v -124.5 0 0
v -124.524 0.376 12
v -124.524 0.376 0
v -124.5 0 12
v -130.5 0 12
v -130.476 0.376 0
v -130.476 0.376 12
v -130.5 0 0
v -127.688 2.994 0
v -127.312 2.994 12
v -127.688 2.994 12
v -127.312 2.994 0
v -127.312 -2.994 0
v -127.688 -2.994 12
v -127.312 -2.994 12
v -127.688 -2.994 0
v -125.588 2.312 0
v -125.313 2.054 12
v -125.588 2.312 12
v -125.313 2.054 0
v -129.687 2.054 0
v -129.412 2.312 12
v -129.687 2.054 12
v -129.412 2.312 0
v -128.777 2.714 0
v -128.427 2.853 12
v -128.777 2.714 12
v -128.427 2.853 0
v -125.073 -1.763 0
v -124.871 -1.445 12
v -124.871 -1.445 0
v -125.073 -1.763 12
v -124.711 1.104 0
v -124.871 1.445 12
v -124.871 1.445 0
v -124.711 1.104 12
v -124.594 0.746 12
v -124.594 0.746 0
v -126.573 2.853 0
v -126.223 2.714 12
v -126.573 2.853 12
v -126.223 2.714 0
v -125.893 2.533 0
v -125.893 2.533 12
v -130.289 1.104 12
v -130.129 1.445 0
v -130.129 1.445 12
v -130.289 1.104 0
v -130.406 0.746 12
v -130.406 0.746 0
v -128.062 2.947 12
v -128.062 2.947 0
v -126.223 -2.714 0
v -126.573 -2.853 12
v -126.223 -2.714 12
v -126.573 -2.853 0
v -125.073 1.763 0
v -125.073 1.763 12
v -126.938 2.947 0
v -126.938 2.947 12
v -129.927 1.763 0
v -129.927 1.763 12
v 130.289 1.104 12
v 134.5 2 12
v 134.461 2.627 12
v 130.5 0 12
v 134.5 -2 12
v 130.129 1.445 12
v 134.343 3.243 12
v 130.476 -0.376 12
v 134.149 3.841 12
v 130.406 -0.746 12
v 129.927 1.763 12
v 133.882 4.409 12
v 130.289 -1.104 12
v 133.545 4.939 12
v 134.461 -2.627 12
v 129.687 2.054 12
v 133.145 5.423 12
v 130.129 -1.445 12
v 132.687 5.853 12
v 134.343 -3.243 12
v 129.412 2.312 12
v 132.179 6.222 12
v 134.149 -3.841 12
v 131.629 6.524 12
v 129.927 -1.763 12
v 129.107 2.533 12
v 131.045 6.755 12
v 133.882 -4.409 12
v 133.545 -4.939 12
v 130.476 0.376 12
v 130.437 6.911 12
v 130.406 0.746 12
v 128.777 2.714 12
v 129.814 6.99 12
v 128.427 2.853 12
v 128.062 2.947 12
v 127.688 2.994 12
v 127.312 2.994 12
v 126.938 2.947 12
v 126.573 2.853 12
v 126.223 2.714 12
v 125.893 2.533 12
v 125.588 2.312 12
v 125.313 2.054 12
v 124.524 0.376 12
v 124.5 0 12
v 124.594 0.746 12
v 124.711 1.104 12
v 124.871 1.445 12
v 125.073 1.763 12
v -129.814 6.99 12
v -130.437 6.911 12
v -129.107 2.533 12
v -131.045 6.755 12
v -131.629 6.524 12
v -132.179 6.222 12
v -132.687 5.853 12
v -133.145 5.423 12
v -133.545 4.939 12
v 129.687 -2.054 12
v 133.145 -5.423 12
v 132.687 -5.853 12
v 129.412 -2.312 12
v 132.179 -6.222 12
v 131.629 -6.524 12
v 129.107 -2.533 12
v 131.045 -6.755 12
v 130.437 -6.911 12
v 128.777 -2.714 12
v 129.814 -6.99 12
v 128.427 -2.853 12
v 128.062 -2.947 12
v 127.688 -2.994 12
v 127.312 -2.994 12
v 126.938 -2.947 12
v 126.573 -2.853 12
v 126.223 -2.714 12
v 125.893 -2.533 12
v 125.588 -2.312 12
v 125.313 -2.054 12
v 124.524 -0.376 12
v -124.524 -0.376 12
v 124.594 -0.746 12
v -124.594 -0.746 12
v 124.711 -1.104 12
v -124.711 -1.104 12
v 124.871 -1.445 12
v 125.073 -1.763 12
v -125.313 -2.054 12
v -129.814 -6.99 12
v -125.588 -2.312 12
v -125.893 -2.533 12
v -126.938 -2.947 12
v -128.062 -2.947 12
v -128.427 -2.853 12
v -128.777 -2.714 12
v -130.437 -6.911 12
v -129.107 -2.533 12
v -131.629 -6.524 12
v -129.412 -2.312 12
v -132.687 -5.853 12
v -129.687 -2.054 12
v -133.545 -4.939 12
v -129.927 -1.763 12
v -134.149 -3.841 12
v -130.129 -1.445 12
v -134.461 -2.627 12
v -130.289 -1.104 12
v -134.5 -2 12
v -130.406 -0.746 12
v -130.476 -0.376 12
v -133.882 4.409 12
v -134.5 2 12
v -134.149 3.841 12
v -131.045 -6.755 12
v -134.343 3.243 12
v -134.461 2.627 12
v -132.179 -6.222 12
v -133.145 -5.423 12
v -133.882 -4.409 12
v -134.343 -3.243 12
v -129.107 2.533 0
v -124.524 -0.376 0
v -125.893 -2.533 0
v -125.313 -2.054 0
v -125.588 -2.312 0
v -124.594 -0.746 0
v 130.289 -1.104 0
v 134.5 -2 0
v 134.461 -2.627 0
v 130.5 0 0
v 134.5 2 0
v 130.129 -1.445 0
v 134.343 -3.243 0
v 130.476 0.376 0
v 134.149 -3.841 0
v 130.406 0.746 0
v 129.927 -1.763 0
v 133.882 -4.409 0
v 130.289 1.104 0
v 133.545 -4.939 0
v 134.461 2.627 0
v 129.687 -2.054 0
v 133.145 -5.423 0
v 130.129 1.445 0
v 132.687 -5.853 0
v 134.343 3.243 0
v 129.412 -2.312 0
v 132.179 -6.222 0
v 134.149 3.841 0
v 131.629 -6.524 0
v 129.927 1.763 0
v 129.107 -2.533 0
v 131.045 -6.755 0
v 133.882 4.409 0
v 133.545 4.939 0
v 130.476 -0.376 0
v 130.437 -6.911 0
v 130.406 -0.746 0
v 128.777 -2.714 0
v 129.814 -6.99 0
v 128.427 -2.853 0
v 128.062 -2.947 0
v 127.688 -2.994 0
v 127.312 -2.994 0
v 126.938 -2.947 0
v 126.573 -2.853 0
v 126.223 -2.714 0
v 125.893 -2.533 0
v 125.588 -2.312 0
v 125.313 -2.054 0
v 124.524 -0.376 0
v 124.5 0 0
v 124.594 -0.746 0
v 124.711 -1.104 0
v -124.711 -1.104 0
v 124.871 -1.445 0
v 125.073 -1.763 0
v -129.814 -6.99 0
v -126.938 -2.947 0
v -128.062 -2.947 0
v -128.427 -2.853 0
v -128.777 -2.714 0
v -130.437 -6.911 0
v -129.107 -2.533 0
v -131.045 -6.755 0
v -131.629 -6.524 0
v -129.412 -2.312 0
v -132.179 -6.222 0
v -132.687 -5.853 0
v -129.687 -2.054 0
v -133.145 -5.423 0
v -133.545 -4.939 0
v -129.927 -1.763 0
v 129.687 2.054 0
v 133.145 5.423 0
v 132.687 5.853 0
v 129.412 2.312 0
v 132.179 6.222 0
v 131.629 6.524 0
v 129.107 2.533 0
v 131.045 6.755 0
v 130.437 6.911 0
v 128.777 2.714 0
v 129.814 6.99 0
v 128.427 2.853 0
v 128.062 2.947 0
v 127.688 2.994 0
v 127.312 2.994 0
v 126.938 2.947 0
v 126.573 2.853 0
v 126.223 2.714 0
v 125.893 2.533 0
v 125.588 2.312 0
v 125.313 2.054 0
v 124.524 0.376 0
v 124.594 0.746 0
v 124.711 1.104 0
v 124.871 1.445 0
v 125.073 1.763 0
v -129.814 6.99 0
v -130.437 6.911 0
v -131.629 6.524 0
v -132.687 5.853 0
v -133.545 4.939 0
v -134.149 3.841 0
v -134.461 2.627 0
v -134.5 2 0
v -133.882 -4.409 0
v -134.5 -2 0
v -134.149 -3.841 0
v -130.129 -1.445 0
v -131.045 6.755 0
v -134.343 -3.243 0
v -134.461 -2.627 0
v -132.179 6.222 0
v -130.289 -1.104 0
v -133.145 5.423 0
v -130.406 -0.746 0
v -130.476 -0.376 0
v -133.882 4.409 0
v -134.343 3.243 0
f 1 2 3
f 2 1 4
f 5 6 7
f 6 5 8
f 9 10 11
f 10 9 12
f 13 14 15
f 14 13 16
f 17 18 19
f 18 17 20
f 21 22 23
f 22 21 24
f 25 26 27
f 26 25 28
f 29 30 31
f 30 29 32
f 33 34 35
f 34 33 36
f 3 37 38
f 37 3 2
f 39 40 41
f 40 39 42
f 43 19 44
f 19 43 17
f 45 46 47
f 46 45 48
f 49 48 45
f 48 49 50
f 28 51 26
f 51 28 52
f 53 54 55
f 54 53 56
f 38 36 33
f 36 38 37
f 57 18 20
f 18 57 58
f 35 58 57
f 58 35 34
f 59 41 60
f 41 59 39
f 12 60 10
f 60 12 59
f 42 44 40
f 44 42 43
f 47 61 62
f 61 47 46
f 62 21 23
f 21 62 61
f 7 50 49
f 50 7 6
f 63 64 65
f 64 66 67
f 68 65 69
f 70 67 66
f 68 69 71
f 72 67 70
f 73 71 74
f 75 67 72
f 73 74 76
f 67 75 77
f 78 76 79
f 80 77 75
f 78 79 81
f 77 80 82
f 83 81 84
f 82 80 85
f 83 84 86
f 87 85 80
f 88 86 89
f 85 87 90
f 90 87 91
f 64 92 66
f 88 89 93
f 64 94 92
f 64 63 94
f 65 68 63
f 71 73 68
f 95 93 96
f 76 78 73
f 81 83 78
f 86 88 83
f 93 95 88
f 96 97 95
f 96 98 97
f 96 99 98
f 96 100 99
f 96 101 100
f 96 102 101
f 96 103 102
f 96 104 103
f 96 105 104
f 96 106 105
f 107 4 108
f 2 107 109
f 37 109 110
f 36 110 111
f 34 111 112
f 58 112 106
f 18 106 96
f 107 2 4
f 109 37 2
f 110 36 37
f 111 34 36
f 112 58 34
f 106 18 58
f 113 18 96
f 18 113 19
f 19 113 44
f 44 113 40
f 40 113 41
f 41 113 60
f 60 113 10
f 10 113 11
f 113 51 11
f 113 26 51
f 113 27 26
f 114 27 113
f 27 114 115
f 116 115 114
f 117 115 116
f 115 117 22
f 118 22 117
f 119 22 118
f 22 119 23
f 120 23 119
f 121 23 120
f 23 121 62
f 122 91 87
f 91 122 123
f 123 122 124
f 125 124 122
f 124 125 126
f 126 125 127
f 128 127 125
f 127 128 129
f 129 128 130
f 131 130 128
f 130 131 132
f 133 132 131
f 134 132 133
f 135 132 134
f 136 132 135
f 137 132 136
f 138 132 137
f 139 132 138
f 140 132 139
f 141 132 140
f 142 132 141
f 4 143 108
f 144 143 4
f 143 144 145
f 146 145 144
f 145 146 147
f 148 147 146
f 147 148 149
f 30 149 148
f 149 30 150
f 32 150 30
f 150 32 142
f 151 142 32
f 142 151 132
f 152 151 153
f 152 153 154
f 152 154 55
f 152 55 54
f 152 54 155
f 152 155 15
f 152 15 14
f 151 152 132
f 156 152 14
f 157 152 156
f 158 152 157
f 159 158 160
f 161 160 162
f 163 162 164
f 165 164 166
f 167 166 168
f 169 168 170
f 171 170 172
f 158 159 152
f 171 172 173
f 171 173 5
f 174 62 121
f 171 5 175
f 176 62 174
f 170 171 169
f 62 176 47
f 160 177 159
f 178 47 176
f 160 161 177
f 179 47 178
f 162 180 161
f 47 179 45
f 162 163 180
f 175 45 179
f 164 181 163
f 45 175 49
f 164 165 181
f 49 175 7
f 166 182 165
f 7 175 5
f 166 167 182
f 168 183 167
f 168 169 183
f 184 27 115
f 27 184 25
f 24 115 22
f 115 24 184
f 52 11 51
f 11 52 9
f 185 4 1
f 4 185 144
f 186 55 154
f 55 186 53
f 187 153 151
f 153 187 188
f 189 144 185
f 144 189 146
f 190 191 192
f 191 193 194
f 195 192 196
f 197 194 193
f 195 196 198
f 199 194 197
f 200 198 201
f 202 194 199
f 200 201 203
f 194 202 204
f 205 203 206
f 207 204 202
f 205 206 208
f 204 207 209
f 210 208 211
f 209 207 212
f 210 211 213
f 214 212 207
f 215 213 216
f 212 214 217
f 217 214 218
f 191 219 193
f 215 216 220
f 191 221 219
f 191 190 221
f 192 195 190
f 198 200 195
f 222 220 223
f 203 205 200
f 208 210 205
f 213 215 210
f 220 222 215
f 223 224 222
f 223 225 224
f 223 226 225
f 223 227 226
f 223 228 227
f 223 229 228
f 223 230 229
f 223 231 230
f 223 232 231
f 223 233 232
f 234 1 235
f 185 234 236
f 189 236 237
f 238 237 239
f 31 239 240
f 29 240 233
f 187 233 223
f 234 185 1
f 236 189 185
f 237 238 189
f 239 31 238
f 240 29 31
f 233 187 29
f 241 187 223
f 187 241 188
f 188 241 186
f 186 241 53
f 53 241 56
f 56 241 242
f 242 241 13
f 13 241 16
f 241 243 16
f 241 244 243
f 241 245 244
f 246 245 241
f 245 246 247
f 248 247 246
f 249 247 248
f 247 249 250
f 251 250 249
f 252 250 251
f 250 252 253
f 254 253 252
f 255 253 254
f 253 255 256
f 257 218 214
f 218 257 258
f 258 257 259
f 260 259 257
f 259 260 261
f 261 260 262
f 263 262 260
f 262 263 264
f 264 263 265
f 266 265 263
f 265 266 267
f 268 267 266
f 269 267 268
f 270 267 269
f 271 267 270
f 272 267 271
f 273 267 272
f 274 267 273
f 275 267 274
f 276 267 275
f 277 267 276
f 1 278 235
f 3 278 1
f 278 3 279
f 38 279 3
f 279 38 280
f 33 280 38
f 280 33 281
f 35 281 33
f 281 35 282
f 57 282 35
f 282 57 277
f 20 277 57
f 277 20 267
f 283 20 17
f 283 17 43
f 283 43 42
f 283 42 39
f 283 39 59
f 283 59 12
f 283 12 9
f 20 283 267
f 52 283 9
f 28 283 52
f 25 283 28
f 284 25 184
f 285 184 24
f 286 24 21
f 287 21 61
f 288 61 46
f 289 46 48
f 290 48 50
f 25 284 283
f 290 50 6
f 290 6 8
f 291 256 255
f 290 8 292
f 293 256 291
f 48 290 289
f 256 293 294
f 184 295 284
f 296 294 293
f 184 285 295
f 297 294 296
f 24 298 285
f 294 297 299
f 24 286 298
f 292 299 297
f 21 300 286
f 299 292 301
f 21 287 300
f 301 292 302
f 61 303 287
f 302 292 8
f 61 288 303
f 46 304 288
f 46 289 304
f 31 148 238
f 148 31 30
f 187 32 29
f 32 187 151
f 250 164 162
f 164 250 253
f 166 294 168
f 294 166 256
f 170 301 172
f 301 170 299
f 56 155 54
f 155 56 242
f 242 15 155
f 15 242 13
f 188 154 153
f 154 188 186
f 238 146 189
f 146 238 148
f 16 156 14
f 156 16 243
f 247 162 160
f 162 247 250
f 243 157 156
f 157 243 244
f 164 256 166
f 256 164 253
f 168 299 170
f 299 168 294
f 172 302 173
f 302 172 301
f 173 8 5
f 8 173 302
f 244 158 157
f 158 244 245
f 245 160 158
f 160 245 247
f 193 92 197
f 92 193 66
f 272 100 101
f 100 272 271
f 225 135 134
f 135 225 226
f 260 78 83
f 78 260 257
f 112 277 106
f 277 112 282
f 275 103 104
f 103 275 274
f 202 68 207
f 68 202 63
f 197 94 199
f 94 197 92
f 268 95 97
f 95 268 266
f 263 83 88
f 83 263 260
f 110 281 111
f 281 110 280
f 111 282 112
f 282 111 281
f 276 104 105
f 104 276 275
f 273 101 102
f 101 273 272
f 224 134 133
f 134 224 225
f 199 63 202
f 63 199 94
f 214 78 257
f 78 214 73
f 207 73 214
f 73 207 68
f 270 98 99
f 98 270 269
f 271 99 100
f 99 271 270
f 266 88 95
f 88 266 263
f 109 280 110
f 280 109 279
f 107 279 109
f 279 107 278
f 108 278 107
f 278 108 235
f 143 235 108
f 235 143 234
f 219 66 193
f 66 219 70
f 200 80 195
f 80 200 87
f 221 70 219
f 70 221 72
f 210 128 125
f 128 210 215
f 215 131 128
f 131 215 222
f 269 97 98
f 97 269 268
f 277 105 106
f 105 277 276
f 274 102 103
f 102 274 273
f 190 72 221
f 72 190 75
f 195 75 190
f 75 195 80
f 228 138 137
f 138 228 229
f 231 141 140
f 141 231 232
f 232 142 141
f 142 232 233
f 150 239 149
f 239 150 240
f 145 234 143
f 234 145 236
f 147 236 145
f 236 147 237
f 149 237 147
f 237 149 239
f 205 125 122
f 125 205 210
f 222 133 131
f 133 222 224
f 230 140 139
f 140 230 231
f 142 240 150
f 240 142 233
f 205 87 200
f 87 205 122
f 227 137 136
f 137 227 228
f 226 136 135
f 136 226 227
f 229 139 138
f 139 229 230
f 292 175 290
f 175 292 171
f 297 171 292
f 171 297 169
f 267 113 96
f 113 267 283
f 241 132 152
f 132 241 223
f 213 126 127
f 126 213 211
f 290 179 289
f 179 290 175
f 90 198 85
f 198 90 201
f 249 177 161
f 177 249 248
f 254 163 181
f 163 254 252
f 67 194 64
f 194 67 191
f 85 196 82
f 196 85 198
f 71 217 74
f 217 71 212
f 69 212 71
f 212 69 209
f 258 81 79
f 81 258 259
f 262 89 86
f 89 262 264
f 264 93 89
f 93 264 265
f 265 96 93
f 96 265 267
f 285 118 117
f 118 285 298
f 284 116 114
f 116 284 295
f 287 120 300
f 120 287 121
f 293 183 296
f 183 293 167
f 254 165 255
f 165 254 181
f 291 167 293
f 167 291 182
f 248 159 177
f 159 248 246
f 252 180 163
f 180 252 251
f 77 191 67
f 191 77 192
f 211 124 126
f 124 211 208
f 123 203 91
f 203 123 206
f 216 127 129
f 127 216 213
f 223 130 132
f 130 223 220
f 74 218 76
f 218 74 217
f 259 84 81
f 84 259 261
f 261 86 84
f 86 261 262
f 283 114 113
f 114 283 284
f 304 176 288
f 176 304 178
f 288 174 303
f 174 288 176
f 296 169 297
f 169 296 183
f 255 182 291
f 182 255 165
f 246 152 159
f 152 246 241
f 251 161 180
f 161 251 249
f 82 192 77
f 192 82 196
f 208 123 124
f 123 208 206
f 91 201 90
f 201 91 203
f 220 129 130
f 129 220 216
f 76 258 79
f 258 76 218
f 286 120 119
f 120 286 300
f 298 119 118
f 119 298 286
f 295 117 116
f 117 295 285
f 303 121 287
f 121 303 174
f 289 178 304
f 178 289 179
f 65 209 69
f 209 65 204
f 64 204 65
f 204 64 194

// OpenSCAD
$fn = 50;


difference() {
	union() {
		hull() {
			translate(v = [-129.5000000000, 2.0000000000, 0]) {
				cylinder(h = 12, r = 5);
			}
			translate(v = [129.5000000000, 2.0000000000, 0]) {
				cylinder(h = 12, r = 5);
			}
			translate(v = [-129.5000000000, -2.0000000000, 0]) {
				cylinder(h = 12, r = 5);
			}
			translate(v = [129.5000000000, -2.0000000000, 0]) {
				cylinder(h = 12, r = 5);
			}
		}
	}
	union() {
		translate(v = [-127.5000000000, 0.0000000000, 0]) {
			cylinder(h = 12, r = 3.0000000000);
		}
		translate(v = [127.5000000000, 0.0000000000, 0]) {
			cylinder(h = 12, r = 3.0000000000);
		}
		translate(v = [-127.5000000000, 0.0000000000, 0]) {
			cylinder(h = 12, r = 1.5000000000);
		}
		translate(v = [127.5000000000, 0.0000000000, 0]) {
			cylinder(h = 12, r = 1.5000000000);
		}
		translate(v = [-127.5000000000, 0.0000000000, 0]) {
			cylinder(h = 12, r = 1.5000000000);
		}
		translate(v = [127.5000000000, 0.0000000000, 0]) {
			cylinder(h = 12, r = 1.5000000000);
		}
		translate(v = [-127.5000000000, 0.0000000000, 0]) {
			cylinder(h = 12, r = 1.5000000000);
		}
		translate(v = [127.5000000000, 0.0000000000, 0]) {
			cylinder(h = 12, r = 1.5000000000);
		}
	}
}
